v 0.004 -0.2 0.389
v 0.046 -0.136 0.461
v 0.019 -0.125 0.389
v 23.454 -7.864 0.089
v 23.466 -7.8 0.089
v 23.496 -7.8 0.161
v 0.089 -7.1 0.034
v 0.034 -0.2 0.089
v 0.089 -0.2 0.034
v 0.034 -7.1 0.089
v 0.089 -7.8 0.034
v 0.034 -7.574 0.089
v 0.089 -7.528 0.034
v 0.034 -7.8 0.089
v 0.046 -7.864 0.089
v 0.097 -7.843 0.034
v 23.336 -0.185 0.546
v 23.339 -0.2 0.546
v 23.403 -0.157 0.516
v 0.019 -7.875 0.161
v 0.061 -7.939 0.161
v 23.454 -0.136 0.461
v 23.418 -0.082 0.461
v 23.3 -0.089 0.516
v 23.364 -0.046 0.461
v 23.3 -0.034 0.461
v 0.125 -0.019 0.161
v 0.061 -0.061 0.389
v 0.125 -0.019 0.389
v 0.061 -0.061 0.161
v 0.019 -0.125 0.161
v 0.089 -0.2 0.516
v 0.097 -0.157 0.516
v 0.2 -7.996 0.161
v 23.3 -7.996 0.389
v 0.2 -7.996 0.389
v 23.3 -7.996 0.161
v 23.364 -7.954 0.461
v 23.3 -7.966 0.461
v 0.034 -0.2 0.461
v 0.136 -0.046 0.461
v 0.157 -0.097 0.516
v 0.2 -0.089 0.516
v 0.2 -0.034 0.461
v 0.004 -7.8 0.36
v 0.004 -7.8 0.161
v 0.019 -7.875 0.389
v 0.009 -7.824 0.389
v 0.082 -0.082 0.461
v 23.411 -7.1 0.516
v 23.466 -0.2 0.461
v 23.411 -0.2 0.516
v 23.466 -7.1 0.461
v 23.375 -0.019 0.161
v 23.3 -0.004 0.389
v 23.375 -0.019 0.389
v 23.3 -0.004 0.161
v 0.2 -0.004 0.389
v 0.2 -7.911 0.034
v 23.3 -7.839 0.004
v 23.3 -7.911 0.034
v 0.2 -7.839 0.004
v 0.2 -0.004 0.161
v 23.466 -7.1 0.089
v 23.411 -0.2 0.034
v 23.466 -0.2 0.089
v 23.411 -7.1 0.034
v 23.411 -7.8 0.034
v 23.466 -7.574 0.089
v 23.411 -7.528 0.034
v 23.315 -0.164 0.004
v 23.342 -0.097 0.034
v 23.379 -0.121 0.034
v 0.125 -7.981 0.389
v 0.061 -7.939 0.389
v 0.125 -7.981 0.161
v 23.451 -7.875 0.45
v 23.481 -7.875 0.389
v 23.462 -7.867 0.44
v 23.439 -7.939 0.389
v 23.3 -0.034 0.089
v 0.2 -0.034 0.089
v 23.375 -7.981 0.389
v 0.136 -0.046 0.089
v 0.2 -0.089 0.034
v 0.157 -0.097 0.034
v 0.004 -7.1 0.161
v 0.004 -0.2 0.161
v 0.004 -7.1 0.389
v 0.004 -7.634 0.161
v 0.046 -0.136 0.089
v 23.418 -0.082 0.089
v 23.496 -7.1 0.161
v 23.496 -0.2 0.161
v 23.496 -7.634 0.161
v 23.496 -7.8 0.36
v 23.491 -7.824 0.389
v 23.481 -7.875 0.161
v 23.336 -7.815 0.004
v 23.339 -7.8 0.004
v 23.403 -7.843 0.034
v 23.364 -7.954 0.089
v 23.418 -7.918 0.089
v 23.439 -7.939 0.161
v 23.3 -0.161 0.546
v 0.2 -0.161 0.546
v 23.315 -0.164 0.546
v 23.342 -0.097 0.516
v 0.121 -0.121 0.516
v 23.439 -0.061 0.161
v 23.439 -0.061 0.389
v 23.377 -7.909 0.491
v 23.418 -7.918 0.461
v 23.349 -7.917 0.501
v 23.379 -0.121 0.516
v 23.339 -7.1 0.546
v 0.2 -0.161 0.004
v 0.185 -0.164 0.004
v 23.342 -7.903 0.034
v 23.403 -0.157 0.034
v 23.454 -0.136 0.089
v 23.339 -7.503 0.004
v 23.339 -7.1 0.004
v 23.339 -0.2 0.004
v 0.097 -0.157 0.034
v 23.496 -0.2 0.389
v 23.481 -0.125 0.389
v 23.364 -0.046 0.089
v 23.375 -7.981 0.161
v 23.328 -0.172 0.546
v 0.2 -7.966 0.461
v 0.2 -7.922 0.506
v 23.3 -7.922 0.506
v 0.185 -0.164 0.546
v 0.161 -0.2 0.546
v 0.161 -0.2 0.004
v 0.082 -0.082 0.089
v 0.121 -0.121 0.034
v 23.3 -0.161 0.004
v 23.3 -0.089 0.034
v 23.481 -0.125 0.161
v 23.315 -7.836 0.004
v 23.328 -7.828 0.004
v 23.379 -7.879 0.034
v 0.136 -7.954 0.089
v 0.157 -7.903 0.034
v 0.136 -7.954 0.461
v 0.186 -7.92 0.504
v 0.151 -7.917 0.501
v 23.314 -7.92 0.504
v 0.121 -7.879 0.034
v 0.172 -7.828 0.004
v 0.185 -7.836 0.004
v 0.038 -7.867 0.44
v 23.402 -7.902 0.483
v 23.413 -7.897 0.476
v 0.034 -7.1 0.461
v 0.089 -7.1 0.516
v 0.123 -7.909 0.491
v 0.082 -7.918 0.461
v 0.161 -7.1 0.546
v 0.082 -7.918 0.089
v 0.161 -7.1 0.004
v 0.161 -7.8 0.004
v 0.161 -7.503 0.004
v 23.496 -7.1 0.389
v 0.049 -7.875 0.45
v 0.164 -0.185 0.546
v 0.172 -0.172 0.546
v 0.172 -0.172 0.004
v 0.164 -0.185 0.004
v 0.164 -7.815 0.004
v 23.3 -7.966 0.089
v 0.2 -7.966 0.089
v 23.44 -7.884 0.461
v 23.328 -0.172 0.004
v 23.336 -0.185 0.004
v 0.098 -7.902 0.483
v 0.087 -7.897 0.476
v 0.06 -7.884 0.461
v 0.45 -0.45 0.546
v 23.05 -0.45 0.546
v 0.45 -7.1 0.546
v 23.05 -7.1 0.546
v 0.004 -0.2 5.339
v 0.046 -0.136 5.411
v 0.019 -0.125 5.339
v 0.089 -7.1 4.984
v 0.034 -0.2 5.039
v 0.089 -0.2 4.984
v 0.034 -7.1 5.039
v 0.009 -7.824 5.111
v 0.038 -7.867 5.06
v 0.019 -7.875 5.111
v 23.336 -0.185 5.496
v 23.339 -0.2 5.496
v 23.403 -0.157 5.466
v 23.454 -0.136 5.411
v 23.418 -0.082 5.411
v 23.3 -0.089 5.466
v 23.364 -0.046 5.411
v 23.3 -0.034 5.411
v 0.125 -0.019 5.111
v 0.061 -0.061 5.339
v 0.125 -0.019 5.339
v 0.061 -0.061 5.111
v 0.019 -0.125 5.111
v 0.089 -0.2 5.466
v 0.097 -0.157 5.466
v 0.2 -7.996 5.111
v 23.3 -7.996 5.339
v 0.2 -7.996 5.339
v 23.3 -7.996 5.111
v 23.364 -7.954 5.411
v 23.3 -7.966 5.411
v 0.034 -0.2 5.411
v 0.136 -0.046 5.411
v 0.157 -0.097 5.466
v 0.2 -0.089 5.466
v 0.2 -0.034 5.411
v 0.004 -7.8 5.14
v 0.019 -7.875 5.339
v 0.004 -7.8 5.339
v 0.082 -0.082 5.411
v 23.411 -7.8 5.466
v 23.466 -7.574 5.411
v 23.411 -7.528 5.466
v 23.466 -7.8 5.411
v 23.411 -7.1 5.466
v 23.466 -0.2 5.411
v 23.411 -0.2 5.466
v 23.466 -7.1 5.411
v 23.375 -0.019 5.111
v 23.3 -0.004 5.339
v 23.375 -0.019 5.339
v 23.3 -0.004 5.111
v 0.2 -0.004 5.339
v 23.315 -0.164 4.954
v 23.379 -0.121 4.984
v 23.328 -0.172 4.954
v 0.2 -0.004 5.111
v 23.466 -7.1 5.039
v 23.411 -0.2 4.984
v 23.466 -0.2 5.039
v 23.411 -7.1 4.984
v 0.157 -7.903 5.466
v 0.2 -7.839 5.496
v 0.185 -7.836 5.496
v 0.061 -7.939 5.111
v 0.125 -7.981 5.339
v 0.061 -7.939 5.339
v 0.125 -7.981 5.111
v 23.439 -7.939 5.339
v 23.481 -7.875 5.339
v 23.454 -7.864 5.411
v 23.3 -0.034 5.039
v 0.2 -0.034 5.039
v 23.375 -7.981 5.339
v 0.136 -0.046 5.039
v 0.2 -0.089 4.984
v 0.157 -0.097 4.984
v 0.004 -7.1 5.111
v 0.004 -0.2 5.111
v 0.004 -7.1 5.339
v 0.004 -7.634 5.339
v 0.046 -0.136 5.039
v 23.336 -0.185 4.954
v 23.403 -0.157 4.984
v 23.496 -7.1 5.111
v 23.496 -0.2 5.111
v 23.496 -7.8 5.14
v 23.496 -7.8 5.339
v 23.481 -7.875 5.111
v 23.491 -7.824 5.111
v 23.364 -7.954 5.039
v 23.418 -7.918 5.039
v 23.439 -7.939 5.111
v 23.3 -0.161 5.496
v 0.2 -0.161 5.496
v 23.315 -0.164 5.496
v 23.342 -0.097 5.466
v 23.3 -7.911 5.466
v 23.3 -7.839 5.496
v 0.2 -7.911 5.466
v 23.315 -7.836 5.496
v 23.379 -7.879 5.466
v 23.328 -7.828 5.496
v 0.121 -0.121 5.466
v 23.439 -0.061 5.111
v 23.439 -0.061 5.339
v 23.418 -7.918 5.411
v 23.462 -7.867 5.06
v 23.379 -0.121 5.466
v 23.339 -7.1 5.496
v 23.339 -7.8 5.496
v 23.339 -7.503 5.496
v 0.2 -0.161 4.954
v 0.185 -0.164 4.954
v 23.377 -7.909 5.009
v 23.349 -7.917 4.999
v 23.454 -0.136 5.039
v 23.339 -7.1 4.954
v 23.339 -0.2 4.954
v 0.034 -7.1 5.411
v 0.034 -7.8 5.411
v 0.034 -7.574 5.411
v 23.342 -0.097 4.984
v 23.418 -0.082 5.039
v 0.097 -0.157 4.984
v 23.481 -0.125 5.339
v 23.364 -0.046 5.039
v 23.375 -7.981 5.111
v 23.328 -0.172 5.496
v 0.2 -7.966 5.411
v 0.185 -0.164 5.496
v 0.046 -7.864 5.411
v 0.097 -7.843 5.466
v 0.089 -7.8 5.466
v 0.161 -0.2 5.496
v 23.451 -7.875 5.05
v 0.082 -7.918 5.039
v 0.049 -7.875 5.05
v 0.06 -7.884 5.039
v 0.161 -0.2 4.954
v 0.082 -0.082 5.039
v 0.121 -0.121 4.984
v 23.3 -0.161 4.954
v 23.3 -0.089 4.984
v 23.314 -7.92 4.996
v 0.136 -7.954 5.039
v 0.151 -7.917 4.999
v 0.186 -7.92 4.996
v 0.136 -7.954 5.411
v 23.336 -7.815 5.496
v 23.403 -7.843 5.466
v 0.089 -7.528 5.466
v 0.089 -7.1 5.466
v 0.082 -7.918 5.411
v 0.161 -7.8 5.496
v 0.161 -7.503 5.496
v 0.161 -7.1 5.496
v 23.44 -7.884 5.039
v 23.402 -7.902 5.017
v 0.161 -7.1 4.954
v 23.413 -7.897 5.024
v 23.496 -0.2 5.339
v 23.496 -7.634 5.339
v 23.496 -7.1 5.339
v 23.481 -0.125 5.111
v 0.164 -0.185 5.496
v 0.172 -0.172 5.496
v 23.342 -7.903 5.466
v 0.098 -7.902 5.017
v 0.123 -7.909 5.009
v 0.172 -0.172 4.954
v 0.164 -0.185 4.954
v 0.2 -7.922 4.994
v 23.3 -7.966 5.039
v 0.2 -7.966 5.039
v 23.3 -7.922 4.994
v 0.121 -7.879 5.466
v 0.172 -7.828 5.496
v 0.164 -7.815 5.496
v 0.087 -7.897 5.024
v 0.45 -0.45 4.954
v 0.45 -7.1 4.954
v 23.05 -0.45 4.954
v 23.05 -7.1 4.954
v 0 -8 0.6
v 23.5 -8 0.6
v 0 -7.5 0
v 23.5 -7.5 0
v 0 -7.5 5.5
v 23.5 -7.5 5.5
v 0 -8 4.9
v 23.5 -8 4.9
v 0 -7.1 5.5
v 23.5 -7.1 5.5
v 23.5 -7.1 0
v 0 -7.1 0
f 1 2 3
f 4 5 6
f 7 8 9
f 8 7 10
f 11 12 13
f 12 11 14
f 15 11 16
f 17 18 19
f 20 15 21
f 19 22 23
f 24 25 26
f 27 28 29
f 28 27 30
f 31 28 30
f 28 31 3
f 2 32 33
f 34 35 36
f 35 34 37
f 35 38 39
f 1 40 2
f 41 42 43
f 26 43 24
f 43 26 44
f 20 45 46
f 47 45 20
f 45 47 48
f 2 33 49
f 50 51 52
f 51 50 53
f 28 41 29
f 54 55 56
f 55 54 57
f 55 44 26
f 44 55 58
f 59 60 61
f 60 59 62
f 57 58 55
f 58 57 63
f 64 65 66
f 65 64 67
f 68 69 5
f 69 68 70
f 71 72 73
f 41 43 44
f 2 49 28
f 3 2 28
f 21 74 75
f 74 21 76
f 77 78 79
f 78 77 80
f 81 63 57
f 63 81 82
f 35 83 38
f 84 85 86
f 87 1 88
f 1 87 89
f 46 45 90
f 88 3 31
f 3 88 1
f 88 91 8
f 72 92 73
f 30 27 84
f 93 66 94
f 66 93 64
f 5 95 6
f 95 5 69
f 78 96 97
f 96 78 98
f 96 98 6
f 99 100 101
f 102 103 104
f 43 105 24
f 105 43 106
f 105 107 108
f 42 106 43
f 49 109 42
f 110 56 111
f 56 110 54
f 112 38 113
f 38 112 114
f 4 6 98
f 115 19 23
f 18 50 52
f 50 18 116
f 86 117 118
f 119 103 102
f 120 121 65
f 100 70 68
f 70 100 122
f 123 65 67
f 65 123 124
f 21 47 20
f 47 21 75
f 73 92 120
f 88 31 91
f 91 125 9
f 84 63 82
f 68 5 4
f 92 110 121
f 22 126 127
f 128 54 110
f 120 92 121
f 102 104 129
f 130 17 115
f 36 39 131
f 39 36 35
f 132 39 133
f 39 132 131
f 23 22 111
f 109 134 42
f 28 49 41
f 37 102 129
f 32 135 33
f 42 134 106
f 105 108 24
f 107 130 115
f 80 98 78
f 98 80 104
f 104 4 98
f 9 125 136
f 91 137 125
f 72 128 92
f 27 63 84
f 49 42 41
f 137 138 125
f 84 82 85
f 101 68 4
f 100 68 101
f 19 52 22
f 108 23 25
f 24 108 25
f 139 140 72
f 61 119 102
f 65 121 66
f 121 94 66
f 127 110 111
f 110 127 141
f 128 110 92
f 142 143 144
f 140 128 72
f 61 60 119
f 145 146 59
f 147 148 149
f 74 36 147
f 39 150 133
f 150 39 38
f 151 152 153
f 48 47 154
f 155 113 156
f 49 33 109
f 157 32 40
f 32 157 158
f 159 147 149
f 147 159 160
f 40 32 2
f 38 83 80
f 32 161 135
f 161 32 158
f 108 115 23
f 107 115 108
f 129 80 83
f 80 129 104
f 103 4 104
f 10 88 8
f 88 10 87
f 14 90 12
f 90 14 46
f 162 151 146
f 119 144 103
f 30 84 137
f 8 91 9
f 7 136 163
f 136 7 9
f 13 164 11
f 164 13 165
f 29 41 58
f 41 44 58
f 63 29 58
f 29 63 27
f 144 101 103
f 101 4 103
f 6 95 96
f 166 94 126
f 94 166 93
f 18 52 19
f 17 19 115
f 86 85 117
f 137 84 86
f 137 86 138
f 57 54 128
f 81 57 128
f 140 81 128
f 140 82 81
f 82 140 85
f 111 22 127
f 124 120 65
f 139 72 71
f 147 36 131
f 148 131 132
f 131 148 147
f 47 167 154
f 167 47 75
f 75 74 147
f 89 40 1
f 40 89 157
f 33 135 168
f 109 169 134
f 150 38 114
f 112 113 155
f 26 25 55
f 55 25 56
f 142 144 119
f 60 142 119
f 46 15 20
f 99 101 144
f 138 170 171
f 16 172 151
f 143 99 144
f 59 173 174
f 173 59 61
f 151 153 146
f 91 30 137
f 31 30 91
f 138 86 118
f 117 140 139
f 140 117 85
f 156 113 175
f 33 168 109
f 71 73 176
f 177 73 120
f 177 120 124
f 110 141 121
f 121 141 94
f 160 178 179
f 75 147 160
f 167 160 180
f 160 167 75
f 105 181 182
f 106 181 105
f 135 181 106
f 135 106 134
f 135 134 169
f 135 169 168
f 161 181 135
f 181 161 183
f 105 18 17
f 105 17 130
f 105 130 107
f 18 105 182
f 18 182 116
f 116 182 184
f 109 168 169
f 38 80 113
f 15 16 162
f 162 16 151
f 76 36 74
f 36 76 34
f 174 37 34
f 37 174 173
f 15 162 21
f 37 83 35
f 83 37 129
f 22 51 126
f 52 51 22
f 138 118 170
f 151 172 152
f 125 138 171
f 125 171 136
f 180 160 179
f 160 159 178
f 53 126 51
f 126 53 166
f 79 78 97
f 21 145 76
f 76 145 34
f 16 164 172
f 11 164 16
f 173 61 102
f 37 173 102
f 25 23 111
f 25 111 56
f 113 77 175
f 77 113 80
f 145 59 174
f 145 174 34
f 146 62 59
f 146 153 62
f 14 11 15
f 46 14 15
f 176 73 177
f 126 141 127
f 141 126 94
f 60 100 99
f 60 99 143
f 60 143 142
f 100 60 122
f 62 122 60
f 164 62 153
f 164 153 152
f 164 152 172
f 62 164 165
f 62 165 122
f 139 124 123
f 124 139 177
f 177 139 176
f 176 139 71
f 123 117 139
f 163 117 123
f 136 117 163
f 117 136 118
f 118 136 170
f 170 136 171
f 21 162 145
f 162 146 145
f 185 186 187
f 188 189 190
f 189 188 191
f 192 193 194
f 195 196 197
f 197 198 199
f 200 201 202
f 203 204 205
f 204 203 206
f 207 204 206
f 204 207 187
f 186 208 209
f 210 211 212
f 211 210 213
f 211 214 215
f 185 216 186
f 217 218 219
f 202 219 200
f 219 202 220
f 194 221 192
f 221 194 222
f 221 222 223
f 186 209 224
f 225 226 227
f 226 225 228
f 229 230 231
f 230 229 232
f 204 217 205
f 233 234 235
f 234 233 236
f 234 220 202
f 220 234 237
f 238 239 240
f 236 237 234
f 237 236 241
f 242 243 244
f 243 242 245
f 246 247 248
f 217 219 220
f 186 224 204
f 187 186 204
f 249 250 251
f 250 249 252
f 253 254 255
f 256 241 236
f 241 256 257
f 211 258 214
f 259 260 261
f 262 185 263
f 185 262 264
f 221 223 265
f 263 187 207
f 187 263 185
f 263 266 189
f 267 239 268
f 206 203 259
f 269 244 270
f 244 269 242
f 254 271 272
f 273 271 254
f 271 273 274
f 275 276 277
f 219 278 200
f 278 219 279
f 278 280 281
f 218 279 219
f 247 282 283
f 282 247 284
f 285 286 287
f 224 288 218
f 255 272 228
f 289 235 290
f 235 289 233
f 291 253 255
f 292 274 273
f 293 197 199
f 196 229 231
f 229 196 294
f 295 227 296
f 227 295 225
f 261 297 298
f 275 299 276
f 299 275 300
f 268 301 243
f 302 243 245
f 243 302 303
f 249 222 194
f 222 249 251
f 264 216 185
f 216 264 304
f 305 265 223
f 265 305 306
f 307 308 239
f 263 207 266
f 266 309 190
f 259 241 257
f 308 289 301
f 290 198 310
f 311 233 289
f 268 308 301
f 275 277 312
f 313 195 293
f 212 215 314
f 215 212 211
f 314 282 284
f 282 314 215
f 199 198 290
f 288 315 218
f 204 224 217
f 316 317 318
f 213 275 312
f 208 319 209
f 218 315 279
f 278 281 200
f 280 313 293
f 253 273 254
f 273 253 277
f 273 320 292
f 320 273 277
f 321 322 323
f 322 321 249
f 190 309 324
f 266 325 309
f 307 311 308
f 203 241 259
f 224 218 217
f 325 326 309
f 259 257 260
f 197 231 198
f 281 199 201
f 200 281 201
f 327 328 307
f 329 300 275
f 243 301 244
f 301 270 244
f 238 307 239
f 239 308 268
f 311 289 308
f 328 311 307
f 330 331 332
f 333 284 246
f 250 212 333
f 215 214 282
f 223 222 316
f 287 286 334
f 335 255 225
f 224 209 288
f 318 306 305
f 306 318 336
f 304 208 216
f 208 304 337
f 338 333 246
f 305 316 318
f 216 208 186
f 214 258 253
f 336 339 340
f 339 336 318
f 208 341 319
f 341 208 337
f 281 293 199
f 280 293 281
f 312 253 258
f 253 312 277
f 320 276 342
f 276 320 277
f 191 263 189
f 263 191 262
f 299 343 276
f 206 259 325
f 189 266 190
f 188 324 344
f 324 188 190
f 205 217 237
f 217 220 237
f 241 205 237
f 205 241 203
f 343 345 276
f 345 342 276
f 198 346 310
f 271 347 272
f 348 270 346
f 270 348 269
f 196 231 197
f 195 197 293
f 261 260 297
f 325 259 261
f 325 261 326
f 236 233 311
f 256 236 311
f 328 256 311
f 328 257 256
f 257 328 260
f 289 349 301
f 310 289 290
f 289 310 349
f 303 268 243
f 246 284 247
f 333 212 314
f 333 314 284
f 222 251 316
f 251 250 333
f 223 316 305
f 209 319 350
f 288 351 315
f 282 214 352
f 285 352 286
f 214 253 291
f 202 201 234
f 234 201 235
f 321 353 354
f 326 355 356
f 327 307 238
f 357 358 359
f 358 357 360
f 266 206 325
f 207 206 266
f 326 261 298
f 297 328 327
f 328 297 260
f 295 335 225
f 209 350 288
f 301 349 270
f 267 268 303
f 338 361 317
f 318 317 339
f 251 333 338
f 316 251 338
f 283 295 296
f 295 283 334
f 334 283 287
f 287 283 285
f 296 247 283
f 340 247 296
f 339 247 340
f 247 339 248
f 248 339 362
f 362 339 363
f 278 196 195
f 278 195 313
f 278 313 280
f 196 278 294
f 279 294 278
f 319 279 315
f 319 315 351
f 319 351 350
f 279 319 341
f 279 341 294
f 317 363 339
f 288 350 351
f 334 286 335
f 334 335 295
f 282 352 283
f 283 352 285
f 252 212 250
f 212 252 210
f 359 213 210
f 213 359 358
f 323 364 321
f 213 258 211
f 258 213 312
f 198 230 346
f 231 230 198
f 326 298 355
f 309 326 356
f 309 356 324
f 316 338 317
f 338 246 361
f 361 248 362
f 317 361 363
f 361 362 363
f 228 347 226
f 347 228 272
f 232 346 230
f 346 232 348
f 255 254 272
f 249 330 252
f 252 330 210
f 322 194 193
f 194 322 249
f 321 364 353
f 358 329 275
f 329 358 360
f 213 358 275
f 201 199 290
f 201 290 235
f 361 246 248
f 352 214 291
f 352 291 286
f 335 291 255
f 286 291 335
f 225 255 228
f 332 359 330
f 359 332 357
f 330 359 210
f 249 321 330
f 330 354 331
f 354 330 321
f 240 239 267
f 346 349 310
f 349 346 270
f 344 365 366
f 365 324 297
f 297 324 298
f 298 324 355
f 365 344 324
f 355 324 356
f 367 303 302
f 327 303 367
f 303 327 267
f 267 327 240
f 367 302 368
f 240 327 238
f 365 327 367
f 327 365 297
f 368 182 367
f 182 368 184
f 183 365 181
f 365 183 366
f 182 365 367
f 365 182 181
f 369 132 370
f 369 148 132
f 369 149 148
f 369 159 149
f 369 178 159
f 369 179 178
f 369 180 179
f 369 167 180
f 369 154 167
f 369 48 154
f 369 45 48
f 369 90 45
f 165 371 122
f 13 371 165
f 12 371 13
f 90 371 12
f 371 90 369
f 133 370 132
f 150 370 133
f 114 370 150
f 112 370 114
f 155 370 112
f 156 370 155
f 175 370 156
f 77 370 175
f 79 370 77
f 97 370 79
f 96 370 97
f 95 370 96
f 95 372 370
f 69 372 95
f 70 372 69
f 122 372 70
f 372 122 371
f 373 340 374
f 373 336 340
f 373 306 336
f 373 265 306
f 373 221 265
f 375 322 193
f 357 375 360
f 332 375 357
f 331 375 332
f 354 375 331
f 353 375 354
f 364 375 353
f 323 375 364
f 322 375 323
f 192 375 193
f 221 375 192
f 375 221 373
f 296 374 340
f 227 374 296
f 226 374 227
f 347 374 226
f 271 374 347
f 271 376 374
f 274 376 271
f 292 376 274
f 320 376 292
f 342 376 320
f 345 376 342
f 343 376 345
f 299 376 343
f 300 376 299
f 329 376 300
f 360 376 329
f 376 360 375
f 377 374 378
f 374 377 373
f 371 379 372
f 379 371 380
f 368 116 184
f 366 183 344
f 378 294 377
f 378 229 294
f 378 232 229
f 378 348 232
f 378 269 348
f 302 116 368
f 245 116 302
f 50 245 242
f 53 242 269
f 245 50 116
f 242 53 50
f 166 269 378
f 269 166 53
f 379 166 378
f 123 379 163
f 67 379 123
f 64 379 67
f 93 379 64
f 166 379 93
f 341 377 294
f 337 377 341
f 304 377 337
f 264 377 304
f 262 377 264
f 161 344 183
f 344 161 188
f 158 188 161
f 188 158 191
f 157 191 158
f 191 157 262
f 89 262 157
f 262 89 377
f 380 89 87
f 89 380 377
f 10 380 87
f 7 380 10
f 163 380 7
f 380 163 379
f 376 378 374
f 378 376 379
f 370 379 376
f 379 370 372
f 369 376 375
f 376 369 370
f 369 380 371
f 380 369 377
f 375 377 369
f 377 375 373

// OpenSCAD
// Book_03.stl  -  Store Versile room frame (Rev C)
// Quantity: 1   Filament: White (e.g. PLA Basic Jade White / Matte Ivory White)
// Print: layer 0.12 mm, infill 20%, 2 walls, brim 0 mm, NO supports
// Orientation: flat  (as installed)
// Notes: Spine label = printed paper.
// The library draws parts with their front toward +Y; mirror([0,1,0]) makes the real
// part face the viewer correctly (see build.py). Edit dimensions in versile_parts.scad.
use <../versile_parts.scad>

mirror([0, 1, 0]) book_03();
